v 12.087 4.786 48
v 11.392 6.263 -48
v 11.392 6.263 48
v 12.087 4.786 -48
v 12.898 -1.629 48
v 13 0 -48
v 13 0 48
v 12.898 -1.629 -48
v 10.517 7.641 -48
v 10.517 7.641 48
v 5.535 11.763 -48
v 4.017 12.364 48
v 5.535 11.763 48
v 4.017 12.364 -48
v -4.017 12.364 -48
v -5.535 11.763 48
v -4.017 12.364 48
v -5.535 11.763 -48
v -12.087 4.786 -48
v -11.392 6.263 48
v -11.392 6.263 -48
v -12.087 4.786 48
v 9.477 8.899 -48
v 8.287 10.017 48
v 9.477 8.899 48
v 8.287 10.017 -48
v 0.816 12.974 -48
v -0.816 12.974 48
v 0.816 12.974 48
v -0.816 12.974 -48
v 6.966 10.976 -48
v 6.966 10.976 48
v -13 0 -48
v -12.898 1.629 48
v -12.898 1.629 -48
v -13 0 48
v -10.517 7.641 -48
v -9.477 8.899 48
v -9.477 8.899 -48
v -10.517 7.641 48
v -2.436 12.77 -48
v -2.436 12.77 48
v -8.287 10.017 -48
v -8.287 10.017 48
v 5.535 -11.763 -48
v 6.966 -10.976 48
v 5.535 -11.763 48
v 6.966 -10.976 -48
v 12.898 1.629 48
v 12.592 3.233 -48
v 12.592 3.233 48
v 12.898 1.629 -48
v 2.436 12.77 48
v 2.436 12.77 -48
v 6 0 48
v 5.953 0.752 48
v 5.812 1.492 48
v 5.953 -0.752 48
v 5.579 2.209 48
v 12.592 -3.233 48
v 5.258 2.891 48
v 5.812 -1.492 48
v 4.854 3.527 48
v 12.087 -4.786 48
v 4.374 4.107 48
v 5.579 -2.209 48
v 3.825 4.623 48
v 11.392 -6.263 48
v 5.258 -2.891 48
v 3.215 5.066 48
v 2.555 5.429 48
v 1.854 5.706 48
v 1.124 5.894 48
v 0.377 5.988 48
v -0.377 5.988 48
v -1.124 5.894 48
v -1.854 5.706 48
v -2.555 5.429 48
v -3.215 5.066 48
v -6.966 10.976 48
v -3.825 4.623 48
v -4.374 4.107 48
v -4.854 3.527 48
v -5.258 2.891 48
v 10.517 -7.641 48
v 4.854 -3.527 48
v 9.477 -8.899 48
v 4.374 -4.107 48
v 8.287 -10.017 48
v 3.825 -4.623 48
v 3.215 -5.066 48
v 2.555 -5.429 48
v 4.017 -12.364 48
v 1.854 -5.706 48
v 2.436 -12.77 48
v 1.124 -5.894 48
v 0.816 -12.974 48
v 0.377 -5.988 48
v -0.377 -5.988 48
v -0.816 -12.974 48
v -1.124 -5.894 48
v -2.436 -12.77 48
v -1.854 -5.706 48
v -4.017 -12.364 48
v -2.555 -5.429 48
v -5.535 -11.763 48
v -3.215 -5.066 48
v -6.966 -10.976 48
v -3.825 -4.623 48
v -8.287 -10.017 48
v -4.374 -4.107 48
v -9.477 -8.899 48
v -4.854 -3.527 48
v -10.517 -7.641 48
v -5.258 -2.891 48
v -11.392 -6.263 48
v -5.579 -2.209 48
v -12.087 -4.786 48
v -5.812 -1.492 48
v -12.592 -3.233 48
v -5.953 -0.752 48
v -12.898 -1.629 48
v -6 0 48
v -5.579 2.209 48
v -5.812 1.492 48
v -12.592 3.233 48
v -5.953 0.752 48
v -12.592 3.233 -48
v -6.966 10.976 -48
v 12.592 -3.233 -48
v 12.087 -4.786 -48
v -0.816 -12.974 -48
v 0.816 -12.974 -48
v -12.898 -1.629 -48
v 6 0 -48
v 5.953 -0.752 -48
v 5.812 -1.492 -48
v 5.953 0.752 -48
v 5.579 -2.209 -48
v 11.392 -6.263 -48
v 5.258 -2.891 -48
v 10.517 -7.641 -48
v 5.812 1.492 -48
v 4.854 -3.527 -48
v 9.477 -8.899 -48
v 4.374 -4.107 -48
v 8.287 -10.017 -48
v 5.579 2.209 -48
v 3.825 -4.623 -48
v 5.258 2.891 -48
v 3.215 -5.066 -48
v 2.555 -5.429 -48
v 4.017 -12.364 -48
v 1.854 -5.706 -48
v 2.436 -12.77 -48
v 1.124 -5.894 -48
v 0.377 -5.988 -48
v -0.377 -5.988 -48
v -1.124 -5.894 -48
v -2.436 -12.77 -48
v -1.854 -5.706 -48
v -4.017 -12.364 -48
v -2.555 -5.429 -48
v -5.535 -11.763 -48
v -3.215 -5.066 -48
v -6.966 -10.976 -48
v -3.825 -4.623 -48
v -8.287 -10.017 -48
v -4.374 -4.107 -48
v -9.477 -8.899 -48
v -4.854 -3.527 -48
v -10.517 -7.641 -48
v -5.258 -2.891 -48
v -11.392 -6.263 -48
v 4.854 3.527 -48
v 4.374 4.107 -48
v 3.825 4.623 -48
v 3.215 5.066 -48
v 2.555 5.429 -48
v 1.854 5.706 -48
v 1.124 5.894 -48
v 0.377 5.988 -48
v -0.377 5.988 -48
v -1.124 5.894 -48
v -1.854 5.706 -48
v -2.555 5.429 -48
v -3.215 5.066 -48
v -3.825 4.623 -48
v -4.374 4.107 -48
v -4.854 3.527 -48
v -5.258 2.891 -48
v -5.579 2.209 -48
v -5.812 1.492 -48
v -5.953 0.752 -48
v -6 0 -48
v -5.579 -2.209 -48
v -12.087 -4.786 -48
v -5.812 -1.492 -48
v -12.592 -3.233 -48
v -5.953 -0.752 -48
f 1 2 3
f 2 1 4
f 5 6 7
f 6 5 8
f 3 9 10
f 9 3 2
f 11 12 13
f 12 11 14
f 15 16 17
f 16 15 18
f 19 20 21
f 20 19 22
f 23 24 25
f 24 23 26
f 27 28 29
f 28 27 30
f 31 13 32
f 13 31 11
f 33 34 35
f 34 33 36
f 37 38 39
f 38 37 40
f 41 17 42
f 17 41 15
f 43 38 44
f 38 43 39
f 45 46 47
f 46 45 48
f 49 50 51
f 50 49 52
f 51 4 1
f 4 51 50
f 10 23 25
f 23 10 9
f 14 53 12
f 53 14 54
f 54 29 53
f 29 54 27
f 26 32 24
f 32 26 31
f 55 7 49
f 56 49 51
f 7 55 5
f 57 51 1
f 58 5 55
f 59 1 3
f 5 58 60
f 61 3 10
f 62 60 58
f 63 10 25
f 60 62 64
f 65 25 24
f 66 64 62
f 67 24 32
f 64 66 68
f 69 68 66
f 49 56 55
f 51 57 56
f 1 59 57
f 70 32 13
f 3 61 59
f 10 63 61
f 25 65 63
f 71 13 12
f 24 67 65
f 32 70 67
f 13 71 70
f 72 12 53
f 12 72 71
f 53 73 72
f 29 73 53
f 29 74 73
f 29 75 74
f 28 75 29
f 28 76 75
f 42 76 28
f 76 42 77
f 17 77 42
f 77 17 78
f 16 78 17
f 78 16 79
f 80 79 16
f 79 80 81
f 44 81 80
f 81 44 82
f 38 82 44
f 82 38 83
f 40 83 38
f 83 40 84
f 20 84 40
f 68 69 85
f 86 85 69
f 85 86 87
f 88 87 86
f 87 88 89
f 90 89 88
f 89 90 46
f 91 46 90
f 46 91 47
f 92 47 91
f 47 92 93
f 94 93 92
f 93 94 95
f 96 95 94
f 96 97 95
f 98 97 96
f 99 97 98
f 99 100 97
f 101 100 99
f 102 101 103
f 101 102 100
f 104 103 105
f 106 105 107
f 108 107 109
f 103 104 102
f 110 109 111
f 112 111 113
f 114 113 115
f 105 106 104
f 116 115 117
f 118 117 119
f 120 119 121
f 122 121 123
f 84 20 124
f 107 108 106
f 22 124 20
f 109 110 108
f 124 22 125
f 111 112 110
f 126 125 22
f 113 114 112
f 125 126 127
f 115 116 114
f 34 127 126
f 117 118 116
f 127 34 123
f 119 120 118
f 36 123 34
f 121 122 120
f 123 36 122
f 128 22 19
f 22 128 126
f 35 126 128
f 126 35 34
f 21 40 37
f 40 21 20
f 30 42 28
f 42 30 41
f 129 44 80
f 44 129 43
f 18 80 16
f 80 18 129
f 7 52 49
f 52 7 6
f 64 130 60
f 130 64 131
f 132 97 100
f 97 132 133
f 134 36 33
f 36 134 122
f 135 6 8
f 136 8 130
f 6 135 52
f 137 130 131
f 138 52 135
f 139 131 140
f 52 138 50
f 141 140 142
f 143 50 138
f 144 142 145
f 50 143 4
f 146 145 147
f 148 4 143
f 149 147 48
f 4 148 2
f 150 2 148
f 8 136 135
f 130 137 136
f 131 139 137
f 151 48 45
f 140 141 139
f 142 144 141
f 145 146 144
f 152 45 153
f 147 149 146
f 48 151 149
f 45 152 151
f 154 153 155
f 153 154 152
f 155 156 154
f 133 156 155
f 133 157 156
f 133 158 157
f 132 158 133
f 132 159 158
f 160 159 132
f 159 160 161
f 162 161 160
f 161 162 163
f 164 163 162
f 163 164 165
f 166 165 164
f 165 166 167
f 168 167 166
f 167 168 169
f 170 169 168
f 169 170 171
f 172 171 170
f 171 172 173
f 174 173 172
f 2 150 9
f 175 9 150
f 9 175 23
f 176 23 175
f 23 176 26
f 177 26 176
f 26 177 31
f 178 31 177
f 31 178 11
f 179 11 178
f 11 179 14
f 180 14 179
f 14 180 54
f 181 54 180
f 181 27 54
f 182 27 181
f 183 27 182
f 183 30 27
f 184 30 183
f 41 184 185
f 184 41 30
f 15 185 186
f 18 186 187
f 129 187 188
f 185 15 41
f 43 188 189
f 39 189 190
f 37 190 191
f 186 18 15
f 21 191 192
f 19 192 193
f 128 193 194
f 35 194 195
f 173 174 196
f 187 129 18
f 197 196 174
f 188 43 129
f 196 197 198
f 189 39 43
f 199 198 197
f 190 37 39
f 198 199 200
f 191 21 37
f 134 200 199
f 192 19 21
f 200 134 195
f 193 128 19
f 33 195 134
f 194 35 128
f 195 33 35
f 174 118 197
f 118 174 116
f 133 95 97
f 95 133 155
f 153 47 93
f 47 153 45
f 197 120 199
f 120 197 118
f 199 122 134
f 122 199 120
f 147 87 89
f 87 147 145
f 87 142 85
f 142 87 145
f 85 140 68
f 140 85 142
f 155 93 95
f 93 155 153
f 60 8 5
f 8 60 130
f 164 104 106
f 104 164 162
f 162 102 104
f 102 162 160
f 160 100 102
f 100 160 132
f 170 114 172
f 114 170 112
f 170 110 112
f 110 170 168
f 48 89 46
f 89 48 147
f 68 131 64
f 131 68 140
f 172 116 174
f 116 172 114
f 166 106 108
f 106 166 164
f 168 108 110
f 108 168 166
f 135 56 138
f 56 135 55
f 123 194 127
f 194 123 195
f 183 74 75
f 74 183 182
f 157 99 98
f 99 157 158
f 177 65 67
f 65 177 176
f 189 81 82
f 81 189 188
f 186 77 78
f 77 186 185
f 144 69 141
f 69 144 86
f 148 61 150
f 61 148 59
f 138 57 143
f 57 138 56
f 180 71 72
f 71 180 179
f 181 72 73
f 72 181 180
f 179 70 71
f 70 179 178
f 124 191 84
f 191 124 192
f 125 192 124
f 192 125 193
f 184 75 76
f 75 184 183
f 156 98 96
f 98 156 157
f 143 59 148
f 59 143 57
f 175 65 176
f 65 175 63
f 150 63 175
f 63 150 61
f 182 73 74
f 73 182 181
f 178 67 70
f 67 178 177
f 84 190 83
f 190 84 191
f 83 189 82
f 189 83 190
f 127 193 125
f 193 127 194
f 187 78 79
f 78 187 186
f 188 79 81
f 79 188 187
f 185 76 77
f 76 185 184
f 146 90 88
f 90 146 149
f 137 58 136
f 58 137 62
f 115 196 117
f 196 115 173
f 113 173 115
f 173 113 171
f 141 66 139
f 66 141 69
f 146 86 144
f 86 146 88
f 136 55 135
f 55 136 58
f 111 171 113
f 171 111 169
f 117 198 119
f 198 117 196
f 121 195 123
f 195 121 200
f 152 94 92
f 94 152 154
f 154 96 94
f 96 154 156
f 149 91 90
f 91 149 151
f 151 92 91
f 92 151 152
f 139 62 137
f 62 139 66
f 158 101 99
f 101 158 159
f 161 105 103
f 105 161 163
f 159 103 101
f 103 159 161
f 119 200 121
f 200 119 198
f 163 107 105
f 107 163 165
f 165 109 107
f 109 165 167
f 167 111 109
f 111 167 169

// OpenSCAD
$fn = 50;


difference() {
	union() {
		translate(v = [0, 0, -48.0000000000]) {
			cylinder(h = 96, r = 13.0000000000);
		}
	}
	union() {
		translate(v = [0, 0, -100.0000000000]) {
			cylinder(h = 200, r = 6);
		}
	}
}
